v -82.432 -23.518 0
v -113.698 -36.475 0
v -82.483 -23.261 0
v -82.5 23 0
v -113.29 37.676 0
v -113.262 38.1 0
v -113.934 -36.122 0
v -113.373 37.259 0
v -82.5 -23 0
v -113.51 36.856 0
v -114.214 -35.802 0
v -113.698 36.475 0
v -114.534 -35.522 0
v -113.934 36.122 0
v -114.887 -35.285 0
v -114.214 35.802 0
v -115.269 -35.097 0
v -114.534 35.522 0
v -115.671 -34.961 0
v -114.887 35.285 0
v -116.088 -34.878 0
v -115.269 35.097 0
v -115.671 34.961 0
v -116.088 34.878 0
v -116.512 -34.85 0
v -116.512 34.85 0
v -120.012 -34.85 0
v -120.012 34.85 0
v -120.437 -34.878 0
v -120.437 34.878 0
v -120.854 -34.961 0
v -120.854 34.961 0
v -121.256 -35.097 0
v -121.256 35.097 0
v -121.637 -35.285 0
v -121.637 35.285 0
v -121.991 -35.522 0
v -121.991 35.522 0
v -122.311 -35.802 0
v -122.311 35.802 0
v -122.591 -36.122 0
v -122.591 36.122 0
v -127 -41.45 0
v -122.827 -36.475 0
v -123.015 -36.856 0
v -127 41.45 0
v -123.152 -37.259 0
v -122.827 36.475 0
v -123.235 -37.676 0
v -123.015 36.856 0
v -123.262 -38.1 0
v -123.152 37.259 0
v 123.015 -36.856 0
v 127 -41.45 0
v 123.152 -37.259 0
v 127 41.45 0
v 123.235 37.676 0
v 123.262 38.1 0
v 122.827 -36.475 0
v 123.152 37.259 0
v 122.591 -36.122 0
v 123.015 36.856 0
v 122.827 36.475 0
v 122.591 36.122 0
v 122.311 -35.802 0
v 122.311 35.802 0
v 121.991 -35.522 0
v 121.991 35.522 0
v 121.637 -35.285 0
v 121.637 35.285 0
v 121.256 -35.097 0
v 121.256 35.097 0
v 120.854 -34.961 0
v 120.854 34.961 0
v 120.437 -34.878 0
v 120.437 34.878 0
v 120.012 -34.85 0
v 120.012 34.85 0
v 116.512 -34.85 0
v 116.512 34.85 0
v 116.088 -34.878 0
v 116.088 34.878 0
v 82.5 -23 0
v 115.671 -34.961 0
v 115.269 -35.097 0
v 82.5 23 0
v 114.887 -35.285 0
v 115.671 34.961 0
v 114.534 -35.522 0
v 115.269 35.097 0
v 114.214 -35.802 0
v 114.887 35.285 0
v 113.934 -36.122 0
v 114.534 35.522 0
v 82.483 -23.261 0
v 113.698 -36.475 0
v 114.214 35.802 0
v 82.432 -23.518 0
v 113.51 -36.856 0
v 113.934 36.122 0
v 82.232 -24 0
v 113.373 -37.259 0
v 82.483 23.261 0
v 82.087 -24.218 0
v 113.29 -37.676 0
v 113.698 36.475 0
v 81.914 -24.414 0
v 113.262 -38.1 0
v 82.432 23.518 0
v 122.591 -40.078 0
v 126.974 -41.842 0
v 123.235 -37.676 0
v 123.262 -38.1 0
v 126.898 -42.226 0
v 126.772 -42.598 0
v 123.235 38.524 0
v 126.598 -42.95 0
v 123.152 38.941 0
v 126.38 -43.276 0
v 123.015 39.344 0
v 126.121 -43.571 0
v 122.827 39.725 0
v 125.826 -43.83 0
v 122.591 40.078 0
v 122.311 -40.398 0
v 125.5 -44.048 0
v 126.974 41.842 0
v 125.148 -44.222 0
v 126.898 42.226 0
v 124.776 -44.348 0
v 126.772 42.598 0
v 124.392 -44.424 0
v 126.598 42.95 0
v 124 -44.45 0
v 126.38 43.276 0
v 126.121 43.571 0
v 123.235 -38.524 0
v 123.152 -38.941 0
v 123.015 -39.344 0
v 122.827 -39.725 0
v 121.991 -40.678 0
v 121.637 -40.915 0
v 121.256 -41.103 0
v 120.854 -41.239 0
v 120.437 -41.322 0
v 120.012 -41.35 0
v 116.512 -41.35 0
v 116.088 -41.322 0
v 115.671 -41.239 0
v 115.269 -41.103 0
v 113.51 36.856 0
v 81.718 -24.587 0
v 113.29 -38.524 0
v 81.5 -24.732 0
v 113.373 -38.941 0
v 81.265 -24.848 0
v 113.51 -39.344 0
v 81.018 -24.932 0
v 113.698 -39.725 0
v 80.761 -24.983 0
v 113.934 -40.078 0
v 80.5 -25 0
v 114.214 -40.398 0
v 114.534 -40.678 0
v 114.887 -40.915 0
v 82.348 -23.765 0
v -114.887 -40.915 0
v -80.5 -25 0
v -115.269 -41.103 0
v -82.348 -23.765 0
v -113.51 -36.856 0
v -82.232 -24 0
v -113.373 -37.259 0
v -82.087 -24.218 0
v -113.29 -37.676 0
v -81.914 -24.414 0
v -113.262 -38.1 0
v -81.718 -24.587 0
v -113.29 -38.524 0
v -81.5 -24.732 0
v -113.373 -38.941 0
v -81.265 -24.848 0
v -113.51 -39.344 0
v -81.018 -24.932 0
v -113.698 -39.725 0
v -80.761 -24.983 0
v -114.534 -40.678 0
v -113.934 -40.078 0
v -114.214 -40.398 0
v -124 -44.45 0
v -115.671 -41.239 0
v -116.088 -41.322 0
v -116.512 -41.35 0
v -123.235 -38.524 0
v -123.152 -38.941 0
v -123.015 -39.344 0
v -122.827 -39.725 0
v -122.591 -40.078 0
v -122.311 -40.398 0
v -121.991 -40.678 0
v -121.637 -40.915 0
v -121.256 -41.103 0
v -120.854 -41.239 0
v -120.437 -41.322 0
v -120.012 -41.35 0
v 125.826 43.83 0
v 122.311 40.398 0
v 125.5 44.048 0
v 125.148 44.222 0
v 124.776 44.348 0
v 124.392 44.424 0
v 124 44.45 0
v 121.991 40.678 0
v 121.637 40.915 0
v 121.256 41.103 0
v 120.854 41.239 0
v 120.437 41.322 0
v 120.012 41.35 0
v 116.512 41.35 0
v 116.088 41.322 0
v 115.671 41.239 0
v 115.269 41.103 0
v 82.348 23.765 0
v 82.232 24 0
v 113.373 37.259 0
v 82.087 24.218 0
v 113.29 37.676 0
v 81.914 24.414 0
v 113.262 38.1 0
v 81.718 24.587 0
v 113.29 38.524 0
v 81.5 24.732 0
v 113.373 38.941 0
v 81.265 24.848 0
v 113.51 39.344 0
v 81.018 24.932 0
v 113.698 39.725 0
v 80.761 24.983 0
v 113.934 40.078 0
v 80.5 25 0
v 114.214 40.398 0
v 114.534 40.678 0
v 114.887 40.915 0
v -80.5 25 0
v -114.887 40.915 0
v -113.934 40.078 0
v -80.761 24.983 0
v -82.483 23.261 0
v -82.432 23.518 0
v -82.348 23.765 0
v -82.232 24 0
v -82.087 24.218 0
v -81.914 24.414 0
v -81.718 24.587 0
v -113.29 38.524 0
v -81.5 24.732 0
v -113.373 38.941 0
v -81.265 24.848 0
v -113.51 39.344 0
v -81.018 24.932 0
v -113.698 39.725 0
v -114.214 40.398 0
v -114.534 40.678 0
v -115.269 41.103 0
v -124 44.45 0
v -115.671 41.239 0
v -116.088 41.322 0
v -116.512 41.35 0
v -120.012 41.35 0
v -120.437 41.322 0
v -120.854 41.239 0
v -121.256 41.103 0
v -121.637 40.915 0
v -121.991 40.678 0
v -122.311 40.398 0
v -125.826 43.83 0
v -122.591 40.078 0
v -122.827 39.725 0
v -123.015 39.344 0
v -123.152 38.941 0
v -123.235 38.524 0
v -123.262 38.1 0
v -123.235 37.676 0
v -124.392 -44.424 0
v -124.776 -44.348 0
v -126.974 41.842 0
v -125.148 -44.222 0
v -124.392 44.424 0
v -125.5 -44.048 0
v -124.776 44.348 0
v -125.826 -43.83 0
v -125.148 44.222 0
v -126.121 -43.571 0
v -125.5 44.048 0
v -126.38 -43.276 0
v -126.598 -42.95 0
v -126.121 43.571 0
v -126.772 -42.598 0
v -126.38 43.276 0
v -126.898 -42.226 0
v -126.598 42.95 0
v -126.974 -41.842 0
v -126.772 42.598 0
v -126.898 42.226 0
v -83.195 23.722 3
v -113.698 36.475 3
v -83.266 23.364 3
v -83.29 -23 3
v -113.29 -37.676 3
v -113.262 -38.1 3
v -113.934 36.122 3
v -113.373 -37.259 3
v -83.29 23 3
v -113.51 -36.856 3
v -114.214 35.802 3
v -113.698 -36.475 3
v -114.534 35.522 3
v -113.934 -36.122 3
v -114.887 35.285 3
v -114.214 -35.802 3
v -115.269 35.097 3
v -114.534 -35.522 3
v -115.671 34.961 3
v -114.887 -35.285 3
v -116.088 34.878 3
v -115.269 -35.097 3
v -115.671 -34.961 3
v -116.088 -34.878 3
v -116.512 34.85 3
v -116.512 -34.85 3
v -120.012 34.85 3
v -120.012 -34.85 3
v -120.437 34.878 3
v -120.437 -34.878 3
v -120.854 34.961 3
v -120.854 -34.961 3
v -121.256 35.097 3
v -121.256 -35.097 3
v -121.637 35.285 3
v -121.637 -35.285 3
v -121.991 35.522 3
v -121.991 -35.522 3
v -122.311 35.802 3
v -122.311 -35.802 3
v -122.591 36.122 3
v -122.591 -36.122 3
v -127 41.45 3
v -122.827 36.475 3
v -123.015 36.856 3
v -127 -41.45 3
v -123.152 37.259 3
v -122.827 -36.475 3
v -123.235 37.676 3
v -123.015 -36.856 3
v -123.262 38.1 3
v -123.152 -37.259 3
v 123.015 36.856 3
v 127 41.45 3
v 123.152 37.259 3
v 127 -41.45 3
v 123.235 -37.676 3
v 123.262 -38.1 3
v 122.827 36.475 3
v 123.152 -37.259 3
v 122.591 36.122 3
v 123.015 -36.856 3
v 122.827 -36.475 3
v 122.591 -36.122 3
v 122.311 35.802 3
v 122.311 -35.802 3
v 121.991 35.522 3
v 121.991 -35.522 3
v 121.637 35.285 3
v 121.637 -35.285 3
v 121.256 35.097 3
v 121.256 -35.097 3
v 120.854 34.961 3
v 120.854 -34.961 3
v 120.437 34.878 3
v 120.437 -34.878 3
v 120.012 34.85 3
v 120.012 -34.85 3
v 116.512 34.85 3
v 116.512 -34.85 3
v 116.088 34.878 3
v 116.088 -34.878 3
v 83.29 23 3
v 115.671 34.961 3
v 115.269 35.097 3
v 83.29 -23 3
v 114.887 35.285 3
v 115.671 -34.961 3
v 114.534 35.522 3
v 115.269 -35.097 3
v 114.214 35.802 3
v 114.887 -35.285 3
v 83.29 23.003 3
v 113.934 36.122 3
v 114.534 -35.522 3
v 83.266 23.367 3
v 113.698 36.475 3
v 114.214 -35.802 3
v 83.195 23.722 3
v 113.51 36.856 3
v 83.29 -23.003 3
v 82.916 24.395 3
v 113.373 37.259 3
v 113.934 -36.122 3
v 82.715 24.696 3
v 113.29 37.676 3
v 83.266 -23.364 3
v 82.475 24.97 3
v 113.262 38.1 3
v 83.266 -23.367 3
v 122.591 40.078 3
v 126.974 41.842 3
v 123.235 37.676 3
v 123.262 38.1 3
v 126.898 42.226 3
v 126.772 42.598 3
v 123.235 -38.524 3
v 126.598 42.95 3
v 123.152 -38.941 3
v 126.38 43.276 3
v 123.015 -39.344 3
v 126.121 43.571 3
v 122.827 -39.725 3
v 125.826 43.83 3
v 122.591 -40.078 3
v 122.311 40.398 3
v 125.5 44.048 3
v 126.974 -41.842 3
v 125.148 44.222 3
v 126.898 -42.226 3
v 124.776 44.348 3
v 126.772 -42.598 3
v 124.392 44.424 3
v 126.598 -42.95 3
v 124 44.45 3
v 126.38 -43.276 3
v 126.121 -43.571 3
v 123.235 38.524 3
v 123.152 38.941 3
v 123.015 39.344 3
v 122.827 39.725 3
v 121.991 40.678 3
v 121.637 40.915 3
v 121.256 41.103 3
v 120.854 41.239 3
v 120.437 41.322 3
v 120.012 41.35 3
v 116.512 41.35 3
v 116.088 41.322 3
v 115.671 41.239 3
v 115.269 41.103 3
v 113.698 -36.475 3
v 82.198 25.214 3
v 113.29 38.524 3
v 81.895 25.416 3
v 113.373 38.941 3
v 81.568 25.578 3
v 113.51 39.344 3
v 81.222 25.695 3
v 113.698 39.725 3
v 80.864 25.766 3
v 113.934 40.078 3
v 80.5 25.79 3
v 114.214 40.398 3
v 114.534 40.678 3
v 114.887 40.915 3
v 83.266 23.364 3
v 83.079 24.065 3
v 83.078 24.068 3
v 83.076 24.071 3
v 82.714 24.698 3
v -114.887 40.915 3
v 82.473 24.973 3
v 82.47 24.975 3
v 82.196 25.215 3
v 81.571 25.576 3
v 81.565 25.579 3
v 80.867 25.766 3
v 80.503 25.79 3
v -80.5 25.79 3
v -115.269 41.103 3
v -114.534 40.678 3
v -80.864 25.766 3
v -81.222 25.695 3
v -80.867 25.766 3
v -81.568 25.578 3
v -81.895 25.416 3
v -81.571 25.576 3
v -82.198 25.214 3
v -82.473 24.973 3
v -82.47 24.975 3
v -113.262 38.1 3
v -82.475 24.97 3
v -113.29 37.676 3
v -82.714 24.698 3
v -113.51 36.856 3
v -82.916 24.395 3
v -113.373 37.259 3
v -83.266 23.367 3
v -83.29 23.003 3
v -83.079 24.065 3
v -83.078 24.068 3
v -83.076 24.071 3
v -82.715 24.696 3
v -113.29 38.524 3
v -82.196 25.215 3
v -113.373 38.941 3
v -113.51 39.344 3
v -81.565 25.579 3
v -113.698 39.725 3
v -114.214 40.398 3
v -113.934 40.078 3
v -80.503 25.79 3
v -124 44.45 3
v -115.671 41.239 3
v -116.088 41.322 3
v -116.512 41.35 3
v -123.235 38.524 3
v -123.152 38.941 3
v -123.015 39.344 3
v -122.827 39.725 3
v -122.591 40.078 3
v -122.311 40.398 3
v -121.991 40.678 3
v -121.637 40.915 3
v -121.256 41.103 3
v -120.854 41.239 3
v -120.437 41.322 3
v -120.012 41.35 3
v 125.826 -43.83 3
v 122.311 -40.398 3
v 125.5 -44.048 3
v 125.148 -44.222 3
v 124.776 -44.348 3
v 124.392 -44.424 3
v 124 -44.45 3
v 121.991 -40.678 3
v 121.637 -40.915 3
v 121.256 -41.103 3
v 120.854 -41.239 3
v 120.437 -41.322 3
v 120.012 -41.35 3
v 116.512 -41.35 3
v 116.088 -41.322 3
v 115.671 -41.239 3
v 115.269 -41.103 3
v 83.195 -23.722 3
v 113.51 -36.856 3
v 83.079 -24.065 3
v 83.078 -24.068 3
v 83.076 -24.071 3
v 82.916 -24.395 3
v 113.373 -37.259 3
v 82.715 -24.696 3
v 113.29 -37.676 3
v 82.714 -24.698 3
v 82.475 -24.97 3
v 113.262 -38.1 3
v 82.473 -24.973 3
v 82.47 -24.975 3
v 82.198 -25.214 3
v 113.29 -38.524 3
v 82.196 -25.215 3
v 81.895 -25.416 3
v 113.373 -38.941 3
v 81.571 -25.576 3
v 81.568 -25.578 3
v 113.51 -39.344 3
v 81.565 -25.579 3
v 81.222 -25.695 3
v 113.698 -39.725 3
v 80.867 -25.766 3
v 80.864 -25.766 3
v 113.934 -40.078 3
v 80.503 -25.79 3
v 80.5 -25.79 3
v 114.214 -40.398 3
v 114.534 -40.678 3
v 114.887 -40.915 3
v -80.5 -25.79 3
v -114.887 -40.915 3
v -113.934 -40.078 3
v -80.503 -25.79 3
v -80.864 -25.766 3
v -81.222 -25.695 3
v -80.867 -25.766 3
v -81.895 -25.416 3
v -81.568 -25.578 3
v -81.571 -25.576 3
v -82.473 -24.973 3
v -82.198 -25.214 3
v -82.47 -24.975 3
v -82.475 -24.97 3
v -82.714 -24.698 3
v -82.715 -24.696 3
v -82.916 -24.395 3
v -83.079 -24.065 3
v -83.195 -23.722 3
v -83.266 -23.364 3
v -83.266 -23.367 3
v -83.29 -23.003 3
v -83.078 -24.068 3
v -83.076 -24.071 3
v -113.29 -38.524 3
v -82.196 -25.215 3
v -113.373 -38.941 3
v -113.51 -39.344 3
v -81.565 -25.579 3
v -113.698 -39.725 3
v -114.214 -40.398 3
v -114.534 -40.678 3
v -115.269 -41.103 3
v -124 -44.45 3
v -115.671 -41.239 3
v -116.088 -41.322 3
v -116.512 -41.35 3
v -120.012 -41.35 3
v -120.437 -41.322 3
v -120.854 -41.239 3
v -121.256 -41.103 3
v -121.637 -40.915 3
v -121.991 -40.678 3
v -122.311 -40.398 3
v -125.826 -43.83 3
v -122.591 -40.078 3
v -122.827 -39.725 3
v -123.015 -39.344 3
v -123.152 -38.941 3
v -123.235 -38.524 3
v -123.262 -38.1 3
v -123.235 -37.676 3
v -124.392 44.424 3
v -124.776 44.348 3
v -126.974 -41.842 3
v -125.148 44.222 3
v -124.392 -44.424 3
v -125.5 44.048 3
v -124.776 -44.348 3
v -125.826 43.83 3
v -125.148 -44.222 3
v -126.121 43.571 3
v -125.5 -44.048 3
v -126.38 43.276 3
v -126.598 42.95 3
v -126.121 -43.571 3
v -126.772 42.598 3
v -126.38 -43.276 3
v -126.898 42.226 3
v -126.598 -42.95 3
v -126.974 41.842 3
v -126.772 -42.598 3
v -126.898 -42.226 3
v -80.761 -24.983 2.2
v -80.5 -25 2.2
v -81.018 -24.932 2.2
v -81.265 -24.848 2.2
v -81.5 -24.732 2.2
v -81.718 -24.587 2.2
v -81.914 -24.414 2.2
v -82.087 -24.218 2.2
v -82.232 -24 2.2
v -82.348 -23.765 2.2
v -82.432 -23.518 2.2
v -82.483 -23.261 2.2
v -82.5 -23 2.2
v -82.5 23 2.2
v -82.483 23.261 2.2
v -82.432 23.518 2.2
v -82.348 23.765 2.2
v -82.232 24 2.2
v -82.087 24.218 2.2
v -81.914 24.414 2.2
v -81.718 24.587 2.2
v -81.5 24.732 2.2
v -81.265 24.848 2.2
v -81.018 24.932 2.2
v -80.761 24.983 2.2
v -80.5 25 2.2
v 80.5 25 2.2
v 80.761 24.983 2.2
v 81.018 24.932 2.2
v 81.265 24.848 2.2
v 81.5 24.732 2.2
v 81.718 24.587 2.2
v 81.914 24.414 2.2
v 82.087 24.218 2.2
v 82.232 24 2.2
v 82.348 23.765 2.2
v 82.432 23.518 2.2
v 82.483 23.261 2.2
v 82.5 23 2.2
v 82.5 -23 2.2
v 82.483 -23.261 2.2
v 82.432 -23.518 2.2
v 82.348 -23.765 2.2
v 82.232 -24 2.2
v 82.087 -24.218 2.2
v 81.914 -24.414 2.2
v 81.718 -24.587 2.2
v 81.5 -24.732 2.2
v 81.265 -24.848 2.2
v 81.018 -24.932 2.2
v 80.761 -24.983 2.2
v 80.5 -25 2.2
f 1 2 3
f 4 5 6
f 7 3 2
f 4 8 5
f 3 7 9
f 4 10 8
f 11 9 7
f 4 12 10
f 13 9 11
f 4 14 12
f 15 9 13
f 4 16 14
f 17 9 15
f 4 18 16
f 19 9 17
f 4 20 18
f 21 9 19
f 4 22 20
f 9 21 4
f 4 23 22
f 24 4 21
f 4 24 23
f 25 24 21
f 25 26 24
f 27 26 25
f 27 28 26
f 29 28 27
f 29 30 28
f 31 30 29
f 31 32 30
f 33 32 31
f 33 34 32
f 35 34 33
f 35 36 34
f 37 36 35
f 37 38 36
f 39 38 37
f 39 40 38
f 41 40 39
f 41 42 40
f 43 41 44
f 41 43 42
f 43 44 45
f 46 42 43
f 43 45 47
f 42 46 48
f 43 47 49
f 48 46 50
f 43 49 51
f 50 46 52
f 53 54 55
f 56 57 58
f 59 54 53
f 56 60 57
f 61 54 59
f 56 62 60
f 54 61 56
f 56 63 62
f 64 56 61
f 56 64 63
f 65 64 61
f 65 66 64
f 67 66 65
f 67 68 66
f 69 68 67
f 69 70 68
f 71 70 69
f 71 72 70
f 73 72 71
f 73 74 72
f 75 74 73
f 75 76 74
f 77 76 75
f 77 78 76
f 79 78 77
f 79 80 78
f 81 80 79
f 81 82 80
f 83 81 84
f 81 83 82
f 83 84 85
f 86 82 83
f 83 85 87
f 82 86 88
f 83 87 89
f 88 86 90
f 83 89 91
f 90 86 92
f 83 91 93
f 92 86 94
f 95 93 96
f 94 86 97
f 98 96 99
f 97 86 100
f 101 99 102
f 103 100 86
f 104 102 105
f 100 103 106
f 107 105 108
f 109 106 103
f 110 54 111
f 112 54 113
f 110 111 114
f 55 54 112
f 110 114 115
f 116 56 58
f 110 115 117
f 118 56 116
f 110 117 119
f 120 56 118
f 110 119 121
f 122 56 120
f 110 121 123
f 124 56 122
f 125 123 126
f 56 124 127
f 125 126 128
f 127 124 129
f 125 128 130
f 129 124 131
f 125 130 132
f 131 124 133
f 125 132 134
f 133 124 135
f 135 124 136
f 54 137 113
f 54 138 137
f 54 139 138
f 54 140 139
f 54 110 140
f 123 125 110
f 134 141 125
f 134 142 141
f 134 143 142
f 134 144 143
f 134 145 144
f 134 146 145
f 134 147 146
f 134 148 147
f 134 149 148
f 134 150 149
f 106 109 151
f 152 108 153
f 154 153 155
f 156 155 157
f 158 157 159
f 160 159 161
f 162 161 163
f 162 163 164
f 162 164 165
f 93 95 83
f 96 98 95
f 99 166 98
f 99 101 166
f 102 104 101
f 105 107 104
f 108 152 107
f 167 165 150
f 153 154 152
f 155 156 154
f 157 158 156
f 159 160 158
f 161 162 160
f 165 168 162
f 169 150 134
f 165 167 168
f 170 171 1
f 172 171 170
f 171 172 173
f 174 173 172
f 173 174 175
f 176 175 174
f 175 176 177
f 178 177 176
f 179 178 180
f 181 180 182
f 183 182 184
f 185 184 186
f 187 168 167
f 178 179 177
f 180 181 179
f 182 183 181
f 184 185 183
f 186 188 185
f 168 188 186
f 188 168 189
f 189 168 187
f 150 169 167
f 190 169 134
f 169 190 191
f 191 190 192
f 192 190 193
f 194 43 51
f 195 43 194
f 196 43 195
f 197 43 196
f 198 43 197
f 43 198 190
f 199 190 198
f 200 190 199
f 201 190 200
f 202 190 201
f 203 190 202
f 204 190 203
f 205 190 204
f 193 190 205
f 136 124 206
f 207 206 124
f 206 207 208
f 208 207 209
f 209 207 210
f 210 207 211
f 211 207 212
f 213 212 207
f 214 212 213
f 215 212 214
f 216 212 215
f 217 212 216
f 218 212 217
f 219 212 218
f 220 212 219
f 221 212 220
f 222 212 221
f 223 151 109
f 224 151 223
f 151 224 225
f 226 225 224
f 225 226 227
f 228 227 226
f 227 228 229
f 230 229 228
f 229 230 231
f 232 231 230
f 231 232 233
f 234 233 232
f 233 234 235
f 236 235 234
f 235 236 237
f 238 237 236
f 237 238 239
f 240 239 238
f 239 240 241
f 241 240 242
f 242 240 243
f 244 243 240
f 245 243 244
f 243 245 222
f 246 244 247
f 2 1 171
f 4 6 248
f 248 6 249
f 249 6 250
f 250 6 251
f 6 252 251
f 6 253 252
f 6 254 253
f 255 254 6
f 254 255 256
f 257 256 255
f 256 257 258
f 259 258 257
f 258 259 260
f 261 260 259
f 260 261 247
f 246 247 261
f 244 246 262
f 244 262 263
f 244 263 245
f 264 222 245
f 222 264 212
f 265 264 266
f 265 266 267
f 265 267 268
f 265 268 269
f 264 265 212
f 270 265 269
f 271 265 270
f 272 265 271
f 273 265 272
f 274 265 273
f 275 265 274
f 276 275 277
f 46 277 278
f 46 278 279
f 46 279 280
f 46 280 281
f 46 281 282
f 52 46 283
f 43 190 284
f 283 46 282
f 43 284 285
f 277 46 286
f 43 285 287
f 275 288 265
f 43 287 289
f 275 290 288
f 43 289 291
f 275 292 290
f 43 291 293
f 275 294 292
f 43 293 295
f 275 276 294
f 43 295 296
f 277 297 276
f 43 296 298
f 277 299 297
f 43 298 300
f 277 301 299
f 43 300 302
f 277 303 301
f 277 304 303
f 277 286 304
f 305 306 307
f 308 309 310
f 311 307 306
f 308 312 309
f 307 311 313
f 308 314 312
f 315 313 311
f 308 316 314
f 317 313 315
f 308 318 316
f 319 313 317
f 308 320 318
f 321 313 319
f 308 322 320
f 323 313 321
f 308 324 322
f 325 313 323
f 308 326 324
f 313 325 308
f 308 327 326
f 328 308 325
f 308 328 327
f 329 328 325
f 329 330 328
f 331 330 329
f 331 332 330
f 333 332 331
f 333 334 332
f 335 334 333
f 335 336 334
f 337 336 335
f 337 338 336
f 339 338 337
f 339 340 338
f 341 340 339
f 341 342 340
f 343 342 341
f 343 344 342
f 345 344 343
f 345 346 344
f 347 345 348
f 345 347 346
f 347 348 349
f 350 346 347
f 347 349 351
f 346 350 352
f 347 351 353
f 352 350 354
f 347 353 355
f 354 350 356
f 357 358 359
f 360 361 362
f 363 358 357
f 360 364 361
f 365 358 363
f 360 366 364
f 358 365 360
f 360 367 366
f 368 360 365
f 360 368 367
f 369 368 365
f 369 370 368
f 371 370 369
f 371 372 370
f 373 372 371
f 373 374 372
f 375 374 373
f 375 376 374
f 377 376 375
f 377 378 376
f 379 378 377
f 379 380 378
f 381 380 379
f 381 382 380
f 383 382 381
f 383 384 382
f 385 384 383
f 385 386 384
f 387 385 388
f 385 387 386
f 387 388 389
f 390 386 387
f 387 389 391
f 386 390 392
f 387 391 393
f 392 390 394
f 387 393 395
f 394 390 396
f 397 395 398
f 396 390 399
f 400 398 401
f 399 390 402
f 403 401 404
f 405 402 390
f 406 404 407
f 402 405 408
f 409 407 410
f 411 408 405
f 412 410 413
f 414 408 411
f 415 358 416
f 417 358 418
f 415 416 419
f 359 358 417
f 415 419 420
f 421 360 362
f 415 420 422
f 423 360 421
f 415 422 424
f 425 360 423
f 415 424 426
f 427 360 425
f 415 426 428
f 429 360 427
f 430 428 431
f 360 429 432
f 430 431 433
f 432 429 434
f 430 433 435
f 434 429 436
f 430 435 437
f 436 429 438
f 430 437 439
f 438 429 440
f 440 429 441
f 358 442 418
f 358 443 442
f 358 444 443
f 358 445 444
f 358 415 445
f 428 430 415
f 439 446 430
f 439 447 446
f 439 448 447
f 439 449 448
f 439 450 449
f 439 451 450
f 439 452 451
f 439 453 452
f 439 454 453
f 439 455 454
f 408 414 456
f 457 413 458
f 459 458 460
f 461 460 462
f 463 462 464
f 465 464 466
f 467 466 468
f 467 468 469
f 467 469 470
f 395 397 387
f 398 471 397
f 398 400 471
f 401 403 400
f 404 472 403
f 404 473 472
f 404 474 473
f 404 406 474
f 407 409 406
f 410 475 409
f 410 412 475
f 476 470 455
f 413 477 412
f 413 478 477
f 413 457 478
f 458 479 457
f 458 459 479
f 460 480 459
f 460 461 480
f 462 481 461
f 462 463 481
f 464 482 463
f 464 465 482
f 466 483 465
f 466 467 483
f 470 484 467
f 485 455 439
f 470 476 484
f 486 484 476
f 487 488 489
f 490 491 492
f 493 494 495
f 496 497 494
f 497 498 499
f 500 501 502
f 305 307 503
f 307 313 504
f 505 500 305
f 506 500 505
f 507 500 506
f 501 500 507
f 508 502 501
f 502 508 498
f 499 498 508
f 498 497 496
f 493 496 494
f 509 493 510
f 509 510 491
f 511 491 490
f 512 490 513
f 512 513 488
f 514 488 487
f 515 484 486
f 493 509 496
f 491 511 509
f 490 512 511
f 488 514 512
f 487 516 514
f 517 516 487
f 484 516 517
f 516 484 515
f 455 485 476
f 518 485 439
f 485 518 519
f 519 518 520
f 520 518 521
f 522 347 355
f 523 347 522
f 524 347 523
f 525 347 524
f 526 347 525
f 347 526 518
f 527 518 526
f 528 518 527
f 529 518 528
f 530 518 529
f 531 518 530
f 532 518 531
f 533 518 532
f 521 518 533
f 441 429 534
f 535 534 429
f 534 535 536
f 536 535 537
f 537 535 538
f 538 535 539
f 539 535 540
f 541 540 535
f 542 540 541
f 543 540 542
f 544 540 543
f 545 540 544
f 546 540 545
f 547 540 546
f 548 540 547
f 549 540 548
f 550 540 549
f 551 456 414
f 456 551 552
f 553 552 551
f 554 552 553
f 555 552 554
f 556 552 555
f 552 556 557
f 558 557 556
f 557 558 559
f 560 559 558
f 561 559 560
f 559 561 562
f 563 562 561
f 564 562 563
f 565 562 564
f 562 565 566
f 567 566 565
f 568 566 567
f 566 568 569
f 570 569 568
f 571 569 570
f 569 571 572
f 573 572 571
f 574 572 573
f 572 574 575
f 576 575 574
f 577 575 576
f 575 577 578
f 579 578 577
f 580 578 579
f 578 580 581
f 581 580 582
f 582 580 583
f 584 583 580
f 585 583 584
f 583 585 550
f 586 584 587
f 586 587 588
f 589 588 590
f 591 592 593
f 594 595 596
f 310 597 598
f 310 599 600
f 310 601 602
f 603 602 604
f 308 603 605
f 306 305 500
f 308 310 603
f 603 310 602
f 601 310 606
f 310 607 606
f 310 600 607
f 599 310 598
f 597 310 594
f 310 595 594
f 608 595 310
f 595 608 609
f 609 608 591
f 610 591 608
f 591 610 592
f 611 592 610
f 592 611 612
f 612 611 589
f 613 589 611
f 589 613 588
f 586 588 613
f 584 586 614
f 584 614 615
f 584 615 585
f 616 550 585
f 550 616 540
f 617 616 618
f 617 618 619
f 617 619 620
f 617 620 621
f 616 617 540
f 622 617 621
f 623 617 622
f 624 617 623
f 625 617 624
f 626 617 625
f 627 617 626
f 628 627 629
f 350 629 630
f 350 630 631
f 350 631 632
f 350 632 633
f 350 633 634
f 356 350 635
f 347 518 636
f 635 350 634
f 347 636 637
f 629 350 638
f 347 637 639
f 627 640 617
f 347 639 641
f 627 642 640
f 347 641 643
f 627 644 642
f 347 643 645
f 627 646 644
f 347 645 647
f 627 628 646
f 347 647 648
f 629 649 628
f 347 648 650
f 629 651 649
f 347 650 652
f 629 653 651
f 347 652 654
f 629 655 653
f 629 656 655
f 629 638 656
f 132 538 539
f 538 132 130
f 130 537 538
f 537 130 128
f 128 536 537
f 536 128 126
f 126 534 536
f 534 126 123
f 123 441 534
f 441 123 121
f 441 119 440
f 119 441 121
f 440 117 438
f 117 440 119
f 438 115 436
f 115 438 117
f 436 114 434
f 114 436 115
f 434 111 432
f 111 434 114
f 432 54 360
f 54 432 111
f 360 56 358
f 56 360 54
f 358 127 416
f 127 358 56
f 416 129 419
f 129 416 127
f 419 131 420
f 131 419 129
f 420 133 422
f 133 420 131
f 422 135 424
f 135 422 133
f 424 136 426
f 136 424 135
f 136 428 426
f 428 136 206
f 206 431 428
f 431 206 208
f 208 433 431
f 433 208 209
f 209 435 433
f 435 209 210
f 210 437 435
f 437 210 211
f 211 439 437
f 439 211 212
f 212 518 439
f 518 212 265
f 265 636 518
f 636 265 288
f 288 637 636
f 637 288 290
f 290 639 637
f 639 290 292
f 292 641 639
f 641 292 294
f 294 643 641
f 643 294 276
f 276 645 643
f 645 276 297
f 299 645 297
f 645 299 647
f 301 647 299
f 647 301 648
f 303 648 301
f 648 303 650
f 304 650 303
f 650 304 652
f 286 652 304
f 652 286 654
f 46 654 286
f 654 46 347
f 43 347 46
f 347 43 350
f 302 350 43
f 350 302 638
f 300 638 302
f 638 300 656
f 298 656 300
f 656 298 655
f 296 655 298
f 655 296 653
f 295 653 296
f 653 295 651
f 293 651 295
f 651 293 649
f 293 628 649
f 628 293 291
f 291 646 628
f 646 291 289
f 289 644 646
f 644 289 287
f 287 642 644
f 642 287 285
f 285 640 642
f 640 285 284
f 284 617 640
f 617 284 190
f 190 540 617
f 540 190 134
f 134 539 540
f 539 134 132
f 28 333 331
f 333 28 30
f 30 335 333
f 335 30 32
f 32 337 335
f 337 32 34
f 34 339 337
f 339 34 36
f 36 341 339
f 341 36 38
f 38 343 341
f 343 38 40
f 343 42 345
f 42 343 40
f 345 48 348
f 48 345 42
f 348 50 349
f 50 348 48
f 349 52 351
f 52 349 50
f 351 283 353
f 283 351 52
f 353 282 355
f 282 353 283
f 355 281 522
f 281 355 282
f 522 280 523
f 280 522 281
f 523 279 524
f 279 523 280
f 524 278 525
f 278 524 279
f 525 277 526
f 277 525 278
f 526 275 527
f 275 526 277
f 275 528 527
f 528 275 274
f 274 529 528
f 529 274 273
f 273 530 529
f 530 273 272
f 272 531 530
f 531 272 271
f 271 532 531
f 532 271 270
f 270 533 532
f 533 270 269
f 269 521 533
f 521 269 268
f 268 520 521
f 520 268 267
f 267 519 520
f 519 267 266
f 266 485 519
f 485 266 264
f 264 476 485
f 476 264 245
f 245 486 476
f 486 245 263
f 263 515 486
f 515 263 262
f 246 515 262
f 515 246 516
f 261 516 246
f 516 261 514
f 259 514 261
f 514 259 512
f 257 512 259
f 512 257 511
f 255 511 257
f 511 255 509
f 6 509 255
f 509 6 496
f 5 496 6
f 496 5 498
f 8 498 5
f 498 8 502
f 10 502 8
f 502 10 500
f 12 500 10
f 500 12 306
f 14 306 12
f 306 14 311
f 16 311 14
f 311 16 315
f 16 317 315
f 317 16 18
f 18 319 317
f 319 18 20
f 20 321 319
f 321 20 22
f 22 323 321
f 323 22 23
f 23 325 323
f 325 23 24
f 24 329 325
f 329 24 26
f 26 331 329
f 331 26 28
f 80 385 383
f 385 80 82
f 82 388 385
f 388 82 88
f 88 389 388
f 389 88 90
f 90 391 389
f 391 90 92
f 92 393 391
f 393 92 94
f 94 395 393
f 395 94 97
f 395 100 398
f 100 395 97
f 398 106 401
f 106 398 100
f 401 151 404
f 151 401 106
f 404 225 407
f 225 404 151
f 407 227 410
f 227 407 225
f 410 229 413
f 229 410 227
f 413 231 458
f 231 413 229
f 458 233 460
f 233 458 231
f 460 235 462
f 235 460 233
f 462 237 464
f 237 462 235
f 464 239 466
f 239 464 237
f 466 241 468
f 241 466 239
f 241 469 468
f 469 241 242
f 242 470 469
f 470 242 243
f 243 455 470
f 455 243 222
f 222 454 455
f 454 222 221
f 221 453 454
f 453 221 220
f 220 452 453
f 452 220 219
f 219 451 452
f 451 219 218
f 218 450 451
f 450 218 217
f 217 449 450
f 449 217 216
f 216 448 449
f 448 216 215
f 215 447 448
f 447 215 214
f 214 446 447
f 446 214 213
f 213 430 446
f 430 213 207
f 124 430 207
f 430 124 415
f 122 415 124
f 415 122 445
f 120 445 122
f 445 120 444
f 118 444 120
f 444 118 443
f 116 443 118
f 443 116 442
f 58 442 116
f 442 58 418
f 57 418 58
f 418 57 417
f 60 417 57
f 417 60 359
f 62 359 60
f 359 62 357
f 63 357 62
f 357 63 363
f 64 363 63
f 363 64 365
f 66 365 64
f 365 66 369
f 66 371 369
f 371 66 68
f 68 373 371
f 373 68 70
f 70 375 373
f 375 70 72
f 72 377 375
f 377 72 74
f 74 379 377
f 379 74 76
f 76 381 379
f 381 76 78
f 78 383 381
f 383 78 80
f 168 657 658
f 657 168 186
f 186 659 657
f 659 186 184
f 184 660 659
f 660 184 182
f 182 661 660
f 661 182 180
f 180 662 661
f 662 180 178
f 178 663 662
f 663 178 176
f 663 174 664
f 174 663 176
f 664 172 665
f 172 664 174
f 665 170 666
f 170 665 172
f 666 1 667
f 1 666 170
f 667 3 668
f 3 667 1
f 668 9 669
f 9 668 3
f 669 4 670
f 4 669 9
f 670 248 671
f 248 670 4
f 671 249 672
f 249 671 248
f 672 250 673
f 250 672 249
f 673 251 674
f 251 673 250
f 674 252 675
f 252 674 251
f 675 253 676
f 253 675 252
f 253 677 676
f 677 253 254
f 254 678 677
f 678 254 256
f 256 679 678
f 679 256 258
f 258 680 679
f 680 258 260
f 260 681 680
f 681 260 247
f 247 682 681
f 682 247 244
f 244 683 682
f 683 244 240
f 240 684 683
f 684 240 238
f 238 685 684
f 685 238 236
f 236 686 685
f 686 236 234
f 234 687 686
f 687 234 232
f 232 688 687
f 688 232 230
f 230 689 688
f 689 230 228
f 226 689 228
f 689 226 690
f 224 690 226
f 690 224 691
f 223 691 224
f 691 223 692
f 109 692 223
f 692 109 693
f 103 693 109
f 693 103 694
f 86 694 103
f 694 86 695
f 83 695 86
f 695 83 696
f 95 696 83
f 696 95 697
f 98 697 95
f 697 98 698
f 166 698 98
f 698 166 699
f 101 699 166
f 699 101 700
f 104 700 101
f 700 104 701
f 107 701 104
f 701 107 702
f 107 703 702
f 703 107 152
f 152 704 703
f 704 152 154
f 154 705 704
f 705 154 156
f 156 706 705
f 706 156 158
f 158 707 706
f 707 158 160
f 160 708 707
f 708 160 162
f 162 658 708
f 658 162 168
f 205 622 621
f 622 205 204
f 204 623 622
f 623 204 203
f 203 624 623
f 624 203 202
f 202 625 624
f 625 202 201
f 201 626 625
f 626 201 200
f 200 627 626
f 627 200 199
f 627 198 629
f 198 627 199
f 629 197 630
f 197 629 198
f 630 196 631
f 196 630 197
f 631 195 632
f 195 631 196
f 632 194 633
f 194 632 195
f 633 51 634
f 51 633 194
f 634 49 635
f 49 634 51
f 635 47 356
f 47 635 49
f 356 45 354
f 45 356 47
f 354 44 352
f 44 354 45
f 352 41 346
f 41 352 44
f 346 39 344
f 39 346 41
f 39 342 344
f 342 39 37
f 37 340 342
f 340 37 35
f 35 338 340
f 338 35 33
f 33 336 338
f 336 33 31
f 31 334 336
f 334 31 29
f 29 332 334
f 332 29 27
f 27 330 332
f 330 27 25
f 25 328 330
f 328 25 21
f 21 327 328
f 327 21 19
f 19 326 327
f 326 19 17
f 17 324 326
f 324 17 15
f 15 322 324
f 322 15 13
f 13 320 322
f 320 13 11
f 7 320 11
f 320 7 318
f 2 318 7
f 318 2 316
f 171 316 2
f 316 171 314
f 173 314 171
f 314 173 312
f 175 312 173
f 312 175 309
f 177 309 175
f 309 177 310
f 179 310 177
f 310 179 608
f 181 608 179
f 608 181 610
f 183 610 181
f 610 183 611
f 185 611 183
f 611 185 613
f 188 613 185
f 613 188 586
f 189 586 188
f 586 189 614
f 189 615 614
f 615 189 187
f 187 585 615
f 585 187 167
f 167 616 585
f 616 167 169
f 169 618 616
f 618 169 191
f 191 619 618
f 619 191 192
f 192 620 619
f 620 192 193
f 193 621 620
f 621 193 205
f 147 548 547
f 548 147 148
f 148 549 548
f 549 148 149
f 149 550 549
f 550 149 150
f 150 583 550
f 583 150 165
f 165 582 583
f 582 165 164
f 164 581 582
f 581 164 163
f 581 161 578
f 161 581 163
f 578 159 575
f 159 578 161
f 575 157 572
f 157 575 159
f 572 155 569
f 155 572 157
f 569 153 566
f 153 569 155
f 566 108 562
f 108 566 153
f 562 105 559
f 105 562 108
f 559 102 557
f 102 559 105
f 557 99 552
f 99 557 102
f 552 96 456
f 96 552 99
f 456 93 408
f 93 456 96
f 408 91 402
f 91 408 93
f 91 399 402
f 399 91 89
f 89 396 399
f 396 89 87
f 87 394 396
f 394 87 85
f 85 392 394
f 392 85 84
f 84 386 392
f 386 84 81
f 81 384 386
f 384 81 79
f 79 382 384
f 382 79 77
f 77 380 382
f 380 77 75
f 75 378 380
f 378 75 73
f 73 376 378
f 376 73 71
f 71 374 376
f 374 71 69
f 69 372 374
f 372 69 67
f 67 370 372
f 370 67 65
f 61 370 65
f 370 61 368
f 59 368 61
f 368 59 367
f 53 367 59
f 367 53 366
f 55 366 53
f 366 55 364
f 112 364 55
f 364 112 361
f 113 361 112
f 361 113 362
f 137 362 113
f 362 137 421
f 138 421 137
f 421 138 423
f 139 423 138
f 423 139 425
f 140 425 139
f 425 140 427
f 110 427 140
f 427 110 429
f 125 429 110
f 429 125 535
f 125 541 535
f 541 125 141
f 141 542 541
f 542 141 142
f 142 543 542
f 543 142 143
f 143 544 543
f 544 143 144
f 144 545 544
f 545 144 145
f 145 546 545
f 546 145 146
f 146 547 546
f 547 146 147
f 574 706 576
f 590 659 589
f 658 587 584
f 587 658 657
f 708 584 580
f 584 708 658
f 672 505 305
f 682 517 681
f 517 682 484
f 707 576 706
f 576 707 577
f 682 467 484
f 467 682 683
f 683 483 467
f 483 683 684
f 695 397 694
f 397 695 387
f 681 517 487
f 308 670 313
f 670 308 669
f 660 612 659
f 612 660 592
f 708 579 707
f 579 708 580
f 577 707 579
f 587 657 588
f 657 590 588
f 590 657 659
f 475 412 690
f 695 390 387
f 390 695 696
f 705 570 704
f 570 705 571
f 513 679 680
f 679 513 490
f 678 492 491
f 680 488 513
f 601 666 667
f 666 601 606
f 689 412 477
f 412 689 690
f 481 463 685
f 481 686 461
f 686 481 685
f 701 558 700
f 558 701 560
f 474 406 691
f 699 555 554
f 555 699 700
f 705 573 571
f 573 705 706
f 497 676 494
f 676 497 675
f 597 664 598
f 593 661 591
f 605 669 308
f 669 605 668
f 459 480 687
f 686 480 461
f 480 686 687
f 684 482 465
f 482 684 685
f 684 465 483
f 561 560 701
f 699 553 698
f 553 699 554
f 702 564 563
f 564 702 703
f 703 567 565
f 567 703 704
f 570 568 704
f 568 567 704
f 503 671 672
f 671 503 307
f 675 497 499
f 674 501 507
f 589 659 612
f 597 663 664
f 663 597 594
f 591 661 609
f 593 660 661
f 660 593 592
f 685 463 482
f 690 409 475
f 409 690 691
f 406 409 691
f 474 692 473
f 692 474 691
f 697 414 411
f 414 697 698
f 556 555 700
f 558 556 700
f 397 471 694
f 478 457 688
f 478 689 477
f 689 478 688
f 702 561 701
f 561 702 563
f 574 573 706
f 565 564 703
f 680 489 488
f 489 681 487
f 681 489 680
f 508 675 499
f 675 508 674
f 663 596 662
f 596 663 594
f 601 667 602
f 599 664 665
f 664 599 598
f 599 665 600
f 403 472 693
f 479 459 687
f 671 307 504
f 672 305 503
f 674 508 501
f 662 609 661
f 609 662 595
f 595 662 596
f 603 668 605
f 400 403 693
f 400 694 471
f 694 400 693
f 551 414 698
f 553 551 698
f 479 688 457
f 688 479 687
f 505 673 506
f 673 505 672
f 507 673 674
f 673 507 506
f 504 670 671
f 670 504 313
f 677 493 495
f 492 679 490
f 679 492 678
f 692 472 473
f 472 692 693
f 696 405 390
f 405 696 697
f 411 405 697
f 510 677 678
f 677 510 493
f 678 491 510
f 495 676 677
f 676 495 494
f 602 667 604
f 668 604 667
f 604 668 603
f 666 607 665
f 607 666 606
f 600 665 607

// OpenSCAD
// Console10_b860i_faceplate.scad
// ---------------------------------------------------------------------------
// 10-inch mini-rack 2U faceplate for the ASUS ROG STRIX B860-I GAMING WIFI
// (truenas2). The board is shelf-mounted with its rear I/O at the rack's
// front plane; this plate drops over the pre-mounted I/O shield and COVERS
// the empty area around it. One rectangular opening, nothing per-port.
//
// Standards (Console10 designdoc s2, EIA-310 10-inch mini rack):
//   1U = 44.45 mm; per-U holes at 6.35 / 22.225 / 38.10 from the U boundary;
//   rail-to-rail hole spacing = 236.525 mm.
// ---------------------------------------------------------------------------

/* ----------------------------- rack constants --------------------------- */
units     = 2;              // faceplate height in rack units
U         = 44.45;          // one rack unit, mm
plate_w   = 254;            // 10-inch standard faceplate width
plate_h   = units * U;      // 88.9 mm for 2U
plate_t   = 3;              // panel thickness -- rigid in PLA at this span
corner_r  = 3;              // outer corner radius

hole_span = 236.525;        // rail-to-rail hole spacing
slot_w    = 6.5;            // clears the rack's M6-class screws
slot_len  = 10;             // horizontal slot: forgives rail-width variance
// Outermost EIA hole rows sit 6.35 mm inside the top/bottom U boundaries.
hole_y    = plate_h/2 - 6.35;

/* ------------------------------ I/O opening ----------------------------- */
// The ATX rear-I/O aperture is 158.75 x 44.45 mm and the B860-I's integrated
// shield lives inside that footprint. The opening below adds clearance all
// around so the plate slides over the shield (and its Wi-Fi antenna posts)
// while the board stays bolted to its shelf. Tune open_x / open_y after a
// test fit if the board isn't dead-centre between the rails.
open_w  = 165;   // opening width  (158.75 aperture + ~3 mm/side)
open_h  = 50;    // opening height (44.45 aperture + ~2.8 mm top/bottom)
open_x  = 0;     // +right when facing the plate, mm
open_y  = 0;     // +up, mm
open_r  = 2;     // opening corner radius
chamfer = 0.8;   // front-edge chamfer around the opening -- reads machined

$fn = 48;

/* ------------------------------- helpers -------------------------------- */
// Rounded rectangle, centred. offset(r)offset(-r) rounds without changing
// the overall W x H, so every dimension above stays true.
module rrect(w, h, r) {
    offset(r) offset(-r) square([w, h], center=true);
}

/* -------------------------------- plate --------------------------------- */
module plate_2d() {
    difference() {
        rrect(plate_w, plate_h, corner_r);
        // the one big opening that frames the motherboard backplane
        translate([open_x, open_y]) rrect(open_w, open_h, open_r);
        // four rack-mount slots, outermost EIA rows. Stadium shape via
        // hull-of-circles: rrect() would degenerate at r == h/2.
        for (sx = [-1, 1], sy = [-1, 1])
            translate([sx*hole_span/2, sy*hole_y])
                hull()
                    for (cx = [-1, 1])
                        translate([cx*(slot_len - slot_w)/2, 0])
                            circle(d = slot_w);
    }
}

// 45-degree chamfer ring sunk into the FRONT face around the opening.
// Built as a hull between the opening outline at depth and a grown outline
// at the surface -- no minkowski, stays fast and manifold.
module opening_chamfer() {
    translate([open_x, open_y, 0]) hull() {
        translate([0, 0, plate_t + 0.01])
            linear_extrude(0.01)
                rrect(open_w + 2*chamfer, open_h + 2*chamfer, open_r + chamfer);
        translate([0, 0, plate_t - chamfer])
            linear_extrude(0.01)
                rrect(open_w, open_h, open_r);
    }
}

module faceplate() {
    difference() {
        linear_extrude(plate_t) plate_2d();
        opening_chamfer();
    }
}

faceplate();
